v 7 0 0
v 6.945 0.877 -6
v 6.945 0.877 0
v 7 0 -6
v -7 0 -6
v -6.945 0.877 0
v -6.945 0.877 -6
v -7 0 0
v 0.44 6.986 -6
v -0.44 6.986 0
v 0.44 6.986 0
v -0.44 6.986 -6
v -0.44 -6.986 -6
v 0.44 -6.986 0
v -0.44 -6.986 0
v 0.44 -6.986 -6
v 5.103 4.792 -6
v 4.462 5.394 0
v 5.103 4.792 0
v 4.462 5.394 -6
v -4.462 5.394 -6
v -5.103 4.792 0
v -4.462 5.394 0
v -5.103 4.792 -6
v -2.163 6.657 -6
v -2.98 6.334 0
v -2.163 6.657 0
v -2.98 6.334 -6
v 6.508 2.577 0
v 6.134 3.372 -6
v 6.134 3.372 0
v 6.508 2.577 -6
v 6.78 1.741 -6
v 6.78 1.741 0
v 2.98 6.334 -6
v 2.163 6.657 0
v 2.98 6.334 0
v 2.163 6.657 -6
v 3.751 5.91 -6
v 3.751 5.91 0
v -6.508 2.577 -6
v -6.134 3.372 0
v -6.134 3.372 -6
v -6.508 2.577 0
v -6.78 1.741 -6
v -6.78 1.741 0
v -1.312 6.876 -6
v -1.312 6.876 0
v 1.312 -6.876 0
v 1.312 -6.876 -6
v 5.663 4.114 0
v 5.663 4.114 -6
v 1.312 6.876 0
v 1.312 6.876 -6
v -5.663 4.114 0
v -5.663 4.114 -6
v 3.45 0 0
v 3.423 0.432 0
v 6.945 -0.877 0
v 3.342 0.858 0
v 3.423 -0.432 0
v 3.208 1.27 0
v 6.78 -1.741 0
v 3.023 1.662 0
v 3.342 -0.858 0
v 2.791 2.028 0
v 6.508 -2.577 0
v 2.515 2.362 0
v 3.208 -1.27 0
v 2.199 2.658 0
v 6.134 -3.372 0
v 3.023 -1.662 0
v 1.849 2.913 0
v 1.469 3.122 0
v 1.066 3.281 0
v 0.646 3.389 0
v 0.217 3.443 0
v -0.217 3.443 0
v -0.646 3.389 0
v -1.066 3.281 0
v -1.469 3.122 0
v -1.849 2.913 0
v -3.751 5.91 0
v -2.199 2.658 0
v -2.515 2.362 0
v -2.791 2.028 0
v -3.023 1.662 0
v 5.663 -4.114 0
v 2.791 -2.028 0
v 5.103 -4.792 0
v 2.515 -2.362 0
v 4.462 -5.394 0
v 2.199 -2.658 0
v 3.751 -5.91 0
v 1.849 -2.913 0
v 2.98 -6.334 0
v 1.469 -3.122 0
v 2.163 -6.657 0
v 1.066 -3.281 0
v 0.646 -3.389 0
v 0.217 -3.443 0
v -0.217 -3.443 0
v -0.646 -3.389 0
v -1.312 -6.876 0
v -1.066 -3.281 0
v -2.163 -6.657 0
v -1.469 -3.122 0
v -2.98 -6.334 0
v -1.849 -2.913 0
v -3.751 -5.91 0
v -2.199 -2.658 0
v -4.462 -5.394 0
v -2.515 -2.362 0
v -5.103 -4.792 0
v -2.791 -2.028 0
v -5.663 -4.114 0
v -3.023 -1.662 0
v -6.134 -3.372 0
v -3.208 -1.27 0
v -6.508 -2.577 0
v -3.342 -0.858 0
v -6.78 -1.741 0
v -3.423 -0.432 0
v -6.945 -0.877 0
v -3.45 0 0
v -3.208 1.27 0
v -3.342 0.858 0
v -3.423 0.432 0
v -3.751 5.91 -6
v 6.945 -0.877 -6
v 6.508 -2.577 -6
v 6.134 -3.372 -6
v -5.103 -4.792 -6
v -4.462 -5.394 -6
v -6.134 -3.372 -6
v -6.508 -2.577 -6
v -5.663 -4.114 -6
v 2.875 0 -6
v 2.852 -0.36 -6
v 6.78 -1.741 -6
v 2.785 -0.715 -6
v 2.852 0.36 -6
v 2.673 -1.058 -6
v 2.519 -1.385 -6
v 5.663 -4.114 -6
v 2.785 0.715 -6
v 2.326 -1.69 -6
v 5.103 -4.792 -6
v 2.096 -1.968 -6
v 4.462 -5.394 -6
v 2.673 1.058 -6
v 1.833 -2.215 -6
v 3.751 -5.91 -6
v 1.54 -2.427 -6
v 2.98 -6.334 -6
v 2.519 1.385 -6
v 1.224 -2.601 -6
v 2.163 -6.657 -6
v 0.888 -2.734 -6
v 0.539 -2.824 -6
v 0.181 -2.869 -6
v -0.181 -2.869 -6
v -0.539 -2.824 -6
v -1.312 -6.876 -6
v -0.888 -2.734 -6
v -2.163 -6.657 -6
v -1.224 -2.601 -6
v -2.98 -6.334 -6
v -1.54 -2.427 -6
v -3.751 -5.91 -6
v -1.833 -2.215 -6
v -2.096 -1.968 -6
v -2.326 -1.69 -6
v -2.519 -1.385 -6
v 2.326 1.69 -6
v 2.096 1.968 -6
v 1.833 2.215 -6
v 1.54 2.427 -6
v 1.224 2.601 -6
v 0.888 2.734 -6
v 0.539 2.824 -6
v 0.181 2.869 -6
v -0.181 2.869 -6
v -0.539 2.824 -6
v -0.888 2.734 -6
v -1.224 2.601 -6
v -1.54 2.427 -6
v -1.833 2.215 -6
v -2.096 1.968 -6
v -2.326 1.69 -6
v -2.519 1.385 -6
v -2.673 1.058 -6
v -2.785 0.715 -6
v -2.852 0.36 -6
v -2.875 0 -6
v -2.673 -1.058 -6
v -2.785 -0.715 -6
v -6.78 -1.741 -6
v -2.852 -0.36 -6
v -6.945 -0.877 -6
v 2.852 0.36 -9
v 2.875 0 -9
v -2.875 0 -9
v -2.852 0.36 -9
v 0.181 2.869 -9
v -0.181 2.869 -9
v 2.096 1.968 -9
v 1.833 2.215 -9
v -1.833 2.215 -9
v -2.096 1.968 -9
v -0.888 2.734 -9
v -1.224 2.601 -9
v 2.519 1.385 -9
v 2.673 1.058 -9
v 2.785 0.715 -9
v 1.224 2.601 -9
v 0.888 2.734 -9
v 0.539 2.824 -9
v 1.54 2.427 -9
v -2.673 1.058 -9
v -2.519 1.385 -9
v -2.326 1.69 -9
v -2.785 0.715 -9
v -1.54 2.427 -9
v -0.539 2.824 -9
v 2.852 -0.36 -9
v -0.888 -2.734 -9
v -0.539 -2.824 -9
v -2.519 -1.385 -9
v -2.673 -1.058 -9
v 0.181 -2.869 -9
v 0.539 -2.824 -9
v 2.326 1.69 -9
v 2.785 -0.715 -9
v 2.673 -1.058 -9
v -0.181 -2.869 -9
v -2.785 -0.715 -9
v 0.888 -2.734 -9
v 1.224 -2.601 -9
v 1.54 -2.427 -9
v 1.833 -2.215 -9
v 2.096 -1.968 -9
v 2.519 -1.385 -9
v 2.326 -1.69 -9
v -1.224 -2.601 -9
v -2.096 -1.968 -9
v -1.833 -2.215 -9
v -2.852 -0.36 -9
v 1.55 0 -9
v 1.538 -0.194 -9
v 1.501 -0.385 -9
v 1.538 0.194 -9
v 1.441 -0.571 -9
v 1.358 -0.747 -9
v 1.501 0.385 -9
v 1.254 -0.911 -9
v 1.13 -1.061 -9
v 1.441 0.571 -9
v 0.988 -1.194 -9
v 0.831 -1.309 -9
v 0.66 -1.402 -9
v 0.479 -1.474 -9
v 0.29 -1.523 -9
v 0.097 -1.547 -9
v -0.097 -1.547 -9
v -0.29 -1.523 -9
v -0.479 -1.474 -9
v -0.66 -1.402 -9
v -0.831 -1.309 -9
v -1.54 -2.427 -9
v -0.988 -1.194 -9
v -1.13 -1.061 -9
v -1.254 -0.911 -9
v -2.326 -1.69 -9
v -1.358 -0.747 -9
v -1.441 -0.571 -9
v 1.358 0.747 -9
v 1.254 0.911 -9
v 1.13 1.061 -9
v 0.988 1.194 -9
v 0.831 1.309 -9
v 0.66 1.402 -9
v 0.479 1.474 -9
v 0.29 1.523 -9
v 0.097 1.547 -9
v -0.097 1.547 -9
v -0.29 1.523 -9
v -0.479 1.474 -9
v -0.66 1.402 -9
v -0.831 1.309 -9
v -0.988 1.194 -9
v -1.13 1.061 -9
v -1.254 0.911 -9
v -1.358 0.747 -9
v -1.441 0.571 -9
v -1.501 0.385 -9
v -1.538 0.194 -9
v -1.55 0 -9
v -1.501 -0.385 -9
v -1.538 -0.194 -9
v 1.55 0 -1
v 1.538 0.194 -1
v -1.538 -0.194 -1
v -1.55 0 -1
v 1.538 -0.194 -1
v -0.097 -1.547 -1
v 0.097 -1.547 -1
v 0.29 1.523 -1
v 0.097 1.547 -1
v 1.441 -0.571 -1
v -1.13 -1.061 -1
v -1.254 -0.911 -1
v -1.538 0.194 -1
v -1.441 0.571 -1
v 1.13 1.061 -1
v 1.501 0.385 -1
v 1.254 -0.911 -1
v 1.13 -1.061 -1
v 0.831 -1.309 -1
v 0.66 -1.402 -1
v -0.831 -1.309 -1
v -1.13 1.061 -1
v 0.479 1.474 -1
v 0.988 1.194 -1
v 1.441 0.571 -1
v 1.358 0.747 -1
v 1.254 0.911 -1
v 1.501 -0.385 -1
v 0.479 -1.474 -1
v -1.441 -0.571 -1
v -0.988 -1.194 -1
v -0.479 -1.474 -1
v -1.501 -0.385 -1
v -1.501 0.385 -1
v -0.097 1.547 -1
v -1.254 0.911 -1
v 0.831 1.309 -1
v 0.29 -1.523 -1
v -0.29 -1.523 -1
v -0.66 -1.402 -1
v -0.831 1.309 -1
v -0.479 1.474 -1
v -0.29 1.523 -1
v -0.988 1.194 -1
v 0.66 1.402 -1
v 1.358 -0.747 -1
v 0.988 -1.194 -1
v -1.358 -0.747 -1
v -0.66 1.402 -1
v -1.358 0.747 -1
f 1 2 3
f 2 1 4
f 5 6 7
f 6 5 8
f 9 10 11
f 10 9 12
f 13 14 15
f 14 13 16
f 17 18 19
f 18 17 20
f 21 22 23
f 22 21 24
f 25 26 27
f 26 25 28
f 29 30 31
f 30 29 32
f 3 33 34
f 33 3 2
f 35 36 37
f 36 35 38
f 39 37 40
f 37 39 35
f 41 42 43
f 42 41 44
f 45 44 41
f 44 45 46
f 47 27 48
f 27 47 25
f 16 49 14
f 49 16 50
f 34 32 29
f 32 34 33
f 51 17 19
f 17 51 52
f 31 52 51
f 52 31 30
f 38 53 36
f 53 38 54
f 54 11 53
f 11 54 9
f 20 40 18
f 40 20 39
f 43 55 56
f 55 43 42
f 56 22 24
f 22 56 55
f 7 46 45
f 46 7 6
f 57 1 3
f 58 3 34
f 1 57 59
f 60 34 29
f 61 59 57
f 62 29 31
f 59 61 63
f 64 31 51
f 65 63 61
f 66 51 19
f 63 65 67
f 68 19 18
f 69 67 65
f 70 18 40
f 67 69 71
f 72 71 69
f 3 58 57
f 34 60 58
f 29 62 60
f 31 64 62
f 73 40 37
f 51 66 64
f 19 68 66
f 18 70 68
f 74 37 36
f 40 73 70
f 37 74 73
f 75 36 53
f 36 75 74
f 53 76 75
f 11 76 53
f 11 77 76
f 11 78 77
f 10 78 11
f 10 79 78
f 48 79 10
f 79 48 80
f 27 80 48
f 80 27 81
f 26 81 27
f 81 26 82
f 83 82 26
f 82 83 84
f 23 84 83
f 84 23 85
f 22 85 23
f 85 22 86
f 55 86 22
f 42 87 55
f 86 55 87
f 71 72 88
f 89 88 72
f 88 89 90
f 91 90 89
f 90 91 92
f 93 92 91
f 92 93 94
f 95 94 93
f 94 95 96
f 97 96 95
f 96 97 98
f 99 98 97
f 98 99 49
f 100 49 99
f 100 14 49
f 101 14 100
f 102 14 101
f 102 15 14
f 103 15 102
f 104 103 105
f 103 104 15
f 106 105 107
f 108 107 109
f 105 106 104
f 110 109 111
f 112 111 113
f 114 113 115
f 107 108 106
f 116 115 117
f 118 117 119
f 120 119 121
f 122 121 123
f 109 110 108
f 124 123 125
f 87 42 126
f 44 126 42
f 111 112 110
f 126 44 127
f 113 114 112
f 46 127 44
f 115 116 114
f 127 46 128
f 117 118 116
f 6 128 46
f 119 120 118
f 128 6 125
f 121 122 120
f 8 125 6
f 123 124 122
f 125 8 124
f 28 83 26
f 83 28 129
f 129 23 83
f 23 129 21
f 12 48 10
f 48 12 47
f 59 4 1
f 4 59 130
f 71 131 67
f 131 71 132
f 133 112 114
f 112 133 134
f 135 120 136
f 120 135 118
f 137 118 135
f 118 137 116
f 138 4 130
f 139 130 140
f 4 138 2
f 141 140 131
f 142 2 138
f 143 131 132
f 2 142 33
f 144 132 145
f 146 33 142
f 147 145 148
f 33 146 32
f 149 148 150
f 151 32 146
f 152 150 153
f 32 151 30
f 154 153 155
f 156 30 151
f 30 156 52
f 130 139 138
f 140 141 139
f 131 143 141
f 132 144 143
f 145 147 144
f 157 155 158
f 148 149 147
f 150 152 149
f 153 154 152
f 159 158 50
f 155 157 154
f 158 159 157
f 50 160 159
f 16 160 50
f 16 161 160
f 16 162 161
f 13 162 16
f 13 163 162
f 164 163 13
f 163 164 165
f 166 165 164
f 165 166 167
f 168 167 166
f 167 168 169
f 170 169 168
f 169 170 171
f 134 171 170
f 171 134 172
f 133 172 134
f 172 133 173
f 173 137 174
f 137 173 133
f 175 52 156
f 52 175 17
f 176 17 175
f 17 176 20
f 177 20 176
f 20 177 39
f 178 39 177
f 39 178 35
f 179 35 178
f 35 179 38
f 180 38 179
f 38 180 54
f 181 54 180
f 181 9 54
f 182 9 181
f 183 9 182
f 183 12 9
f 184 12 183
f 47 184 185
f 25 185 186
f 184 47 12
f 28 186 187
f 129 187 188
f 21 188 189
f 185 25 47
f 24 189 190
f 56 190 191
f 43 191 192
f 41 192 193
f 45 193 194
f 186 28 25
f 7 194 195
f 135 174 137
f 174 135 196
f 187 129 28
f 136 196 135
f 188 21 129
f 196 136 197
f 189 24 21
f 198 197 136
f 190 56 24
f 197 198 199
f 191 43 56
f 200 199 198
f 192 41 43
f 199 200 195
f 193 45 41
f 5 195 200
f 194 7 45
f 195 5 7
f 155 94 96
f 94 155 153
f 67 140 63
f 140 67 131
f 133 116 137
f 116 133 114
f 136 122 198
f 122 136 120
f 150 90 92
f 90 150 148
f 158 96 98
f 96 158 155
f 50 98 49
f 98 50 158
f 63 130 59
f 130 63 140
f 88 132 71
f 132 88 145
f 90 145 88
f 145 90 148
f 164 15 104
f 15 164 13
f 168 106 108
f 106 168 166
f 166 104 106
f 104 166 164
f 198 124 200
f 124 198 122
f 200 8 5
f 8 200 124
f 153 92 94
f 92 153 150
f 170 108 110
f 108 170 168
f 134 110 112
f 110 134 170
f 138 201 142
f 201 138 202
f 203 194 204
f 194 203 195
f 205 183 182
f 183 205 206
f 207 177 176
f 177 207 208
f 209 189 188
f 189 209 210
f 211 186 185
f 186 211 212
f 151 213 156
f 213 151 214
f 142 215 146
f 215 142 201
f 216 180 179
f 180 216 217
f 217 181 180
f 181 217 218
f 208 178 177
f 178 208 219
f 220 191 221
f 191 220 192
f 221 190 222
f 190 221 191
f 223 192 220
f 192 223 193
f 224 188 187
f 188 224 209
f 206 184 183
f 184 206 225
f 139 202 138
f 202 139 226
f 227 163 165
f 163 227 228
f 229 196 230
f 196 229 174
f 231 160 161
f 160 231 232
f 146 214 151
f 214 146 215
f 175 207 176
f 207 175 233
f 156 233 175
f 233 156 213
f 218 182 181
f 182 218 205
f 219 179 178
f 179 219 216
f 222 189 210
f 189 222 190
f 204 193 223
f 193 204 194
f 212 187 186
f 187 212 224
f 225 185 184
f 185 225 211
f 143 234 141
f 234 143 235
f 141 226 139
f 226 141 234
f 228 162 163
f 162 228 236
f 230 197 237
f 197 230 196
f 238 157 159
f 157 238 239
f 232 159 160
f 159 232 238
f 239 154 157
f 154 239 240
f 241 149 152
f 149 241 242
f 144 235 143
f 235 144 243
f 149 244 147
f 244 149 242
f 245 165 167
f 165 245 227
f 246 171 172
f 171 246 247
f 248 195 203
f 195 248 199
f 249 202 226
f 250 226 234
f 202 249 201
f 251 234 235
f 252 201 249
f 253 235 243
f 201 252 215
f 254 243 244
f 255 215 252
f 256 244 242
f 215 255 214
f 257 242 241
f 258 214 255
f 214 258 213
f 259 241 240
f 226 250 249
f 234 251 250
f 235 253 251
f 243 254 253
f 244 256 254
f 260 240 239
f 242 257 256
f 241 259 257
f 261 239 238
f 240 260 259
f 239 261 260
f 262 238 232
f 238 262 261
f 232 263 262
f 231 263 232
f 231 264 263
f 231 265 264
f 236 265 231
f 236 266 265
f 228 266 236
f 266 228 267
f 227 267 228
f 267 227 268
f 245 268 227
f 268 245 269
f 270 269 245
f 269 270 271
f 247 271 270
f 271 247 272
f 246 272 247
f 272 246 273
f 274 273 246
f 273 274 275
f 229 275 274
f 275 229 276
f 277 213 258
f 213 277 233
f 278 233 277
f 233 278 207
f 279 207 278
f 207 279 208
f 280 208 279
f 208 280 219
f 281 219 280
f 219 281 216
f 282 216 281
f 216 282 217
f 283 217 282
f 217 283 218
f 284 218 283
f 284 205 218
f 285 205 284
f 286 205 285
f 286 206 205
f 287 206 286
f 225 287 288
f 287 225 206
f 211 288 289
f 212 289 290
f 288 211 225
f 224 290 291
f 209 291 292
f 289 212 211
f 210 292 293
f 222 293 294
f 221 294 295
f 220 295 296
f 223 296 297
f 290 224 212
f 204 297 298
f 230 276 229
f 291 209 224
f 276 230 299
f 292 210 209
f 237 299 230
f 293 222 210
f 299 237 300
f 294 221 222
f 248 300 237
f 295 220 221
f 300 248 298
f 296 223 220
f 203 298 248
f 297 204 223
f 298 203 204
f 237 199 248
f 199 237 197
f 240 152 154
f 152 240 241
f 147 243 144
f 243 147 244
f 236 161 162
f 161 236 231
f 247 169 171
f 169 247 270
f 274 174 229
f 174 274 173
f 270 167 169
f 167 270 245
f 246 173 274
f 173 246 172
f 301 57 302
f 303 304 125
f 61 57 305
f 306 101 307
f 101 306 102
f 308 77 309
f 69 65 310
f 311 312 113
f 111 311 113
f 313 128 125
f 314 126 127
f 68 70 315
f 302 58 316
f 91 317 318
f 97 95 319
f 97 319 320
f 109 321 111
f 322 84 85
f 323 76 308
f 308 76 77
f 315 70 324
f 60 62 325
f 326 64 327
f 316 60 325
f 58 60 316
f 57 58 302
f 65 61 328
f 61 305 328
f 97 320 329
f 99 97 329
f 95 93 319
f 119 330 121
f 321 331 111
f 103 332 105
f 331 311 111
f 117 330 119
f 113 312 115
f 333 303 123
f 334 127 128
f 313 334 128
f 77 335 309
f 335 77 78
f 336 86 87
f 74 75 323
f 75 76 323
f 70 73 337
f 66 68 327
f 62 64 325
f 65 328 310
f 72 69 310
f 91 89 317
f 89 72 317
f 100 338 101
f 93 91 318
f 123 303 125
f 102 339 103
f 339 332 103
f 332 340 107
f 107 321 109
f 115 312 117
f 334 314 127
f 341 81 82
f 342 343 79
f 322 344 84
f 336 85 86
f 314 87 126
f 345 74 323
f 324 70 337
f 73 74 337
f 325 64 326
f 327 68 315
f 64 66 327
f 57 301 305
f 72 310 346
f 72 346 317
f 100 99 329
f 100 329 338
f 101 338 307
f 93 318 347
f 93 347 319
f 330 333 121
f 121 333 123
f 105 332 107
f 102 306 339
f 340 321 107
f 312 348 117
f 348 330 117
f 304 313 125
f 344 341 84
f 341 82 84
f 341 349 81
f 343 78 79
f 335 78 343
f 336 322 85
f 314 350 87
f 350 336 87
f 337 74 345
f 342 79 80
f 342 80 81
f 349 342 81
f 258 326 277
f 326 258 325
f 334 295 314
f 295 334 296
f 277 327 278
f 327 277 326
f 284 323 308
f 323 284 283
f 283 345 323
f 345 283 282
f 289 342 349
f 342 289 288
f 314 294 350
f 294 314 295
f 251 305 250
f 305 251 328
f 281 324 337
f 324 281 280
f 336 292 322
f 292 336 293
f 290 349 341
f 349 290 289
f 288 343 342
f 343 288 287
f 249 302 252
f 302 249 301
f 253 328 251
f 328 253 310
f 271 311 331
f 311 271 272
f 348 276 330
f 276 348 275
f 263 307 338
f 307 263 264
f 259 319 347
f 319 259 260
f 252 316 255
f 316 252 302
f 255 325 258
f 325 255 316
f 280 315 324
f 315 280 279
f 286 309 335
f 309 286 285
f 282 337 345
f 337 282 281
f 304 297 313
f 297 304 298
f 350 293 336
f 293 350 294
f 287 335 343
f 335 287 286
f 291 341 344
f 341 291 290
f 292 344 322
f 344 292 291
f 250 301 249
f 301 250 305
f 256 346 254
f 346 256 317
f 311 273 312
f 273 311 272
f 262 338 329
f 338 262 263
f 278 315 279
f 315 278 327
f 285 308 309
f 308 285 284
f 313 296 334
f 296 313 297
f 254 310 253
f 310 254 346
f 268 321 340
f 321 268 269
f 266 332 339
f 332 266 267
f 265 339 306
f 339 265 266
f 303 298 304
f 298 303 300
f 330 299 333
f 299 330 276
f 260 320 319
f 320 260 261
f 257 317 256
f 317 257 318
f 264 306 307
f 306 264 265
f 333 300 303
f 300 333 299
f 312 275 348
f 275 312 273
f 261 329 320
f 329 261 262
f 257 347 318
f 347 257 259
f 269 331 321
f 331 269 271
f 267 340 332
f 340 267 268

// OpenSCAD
$fn = 50;


difference() {
	union() {
		translate(v = [0, 0, -6.0000000000]) {
			cylinder(h = 6, r = 7.0000000000);
		}
		#translate(v = [0, 0, -9.0000000000]) {
			cylinder(h = 9, r = 2.8750000000);
		}
	}
	union() {
		translate(v = [0, 0, 0]) {
			rotate(a = [0, 0, 0]) {
				difference() {
					union() {
						translate(v = [0, 0, -9.0000000000]) {
							cylinder(h = 9, r = 1.2500000000);
						}
						translate(v = [0, 0, -1.0000000000]) {
							cylinder(h = 1.0000000000, r1 = 1.5500000000, r2 = 3.4500000000);
						}
						translate(v = [0, 0, -9.0000000000]) {
							cylinder(h = 9, r = 1.5500000000);
						}
						translate(v = [0, 0, -9.0000000000]) {
							cylinder(h = 9, r = 1.2500000000);
						}
					}
					union();
				}
			}
		}
	}
}
